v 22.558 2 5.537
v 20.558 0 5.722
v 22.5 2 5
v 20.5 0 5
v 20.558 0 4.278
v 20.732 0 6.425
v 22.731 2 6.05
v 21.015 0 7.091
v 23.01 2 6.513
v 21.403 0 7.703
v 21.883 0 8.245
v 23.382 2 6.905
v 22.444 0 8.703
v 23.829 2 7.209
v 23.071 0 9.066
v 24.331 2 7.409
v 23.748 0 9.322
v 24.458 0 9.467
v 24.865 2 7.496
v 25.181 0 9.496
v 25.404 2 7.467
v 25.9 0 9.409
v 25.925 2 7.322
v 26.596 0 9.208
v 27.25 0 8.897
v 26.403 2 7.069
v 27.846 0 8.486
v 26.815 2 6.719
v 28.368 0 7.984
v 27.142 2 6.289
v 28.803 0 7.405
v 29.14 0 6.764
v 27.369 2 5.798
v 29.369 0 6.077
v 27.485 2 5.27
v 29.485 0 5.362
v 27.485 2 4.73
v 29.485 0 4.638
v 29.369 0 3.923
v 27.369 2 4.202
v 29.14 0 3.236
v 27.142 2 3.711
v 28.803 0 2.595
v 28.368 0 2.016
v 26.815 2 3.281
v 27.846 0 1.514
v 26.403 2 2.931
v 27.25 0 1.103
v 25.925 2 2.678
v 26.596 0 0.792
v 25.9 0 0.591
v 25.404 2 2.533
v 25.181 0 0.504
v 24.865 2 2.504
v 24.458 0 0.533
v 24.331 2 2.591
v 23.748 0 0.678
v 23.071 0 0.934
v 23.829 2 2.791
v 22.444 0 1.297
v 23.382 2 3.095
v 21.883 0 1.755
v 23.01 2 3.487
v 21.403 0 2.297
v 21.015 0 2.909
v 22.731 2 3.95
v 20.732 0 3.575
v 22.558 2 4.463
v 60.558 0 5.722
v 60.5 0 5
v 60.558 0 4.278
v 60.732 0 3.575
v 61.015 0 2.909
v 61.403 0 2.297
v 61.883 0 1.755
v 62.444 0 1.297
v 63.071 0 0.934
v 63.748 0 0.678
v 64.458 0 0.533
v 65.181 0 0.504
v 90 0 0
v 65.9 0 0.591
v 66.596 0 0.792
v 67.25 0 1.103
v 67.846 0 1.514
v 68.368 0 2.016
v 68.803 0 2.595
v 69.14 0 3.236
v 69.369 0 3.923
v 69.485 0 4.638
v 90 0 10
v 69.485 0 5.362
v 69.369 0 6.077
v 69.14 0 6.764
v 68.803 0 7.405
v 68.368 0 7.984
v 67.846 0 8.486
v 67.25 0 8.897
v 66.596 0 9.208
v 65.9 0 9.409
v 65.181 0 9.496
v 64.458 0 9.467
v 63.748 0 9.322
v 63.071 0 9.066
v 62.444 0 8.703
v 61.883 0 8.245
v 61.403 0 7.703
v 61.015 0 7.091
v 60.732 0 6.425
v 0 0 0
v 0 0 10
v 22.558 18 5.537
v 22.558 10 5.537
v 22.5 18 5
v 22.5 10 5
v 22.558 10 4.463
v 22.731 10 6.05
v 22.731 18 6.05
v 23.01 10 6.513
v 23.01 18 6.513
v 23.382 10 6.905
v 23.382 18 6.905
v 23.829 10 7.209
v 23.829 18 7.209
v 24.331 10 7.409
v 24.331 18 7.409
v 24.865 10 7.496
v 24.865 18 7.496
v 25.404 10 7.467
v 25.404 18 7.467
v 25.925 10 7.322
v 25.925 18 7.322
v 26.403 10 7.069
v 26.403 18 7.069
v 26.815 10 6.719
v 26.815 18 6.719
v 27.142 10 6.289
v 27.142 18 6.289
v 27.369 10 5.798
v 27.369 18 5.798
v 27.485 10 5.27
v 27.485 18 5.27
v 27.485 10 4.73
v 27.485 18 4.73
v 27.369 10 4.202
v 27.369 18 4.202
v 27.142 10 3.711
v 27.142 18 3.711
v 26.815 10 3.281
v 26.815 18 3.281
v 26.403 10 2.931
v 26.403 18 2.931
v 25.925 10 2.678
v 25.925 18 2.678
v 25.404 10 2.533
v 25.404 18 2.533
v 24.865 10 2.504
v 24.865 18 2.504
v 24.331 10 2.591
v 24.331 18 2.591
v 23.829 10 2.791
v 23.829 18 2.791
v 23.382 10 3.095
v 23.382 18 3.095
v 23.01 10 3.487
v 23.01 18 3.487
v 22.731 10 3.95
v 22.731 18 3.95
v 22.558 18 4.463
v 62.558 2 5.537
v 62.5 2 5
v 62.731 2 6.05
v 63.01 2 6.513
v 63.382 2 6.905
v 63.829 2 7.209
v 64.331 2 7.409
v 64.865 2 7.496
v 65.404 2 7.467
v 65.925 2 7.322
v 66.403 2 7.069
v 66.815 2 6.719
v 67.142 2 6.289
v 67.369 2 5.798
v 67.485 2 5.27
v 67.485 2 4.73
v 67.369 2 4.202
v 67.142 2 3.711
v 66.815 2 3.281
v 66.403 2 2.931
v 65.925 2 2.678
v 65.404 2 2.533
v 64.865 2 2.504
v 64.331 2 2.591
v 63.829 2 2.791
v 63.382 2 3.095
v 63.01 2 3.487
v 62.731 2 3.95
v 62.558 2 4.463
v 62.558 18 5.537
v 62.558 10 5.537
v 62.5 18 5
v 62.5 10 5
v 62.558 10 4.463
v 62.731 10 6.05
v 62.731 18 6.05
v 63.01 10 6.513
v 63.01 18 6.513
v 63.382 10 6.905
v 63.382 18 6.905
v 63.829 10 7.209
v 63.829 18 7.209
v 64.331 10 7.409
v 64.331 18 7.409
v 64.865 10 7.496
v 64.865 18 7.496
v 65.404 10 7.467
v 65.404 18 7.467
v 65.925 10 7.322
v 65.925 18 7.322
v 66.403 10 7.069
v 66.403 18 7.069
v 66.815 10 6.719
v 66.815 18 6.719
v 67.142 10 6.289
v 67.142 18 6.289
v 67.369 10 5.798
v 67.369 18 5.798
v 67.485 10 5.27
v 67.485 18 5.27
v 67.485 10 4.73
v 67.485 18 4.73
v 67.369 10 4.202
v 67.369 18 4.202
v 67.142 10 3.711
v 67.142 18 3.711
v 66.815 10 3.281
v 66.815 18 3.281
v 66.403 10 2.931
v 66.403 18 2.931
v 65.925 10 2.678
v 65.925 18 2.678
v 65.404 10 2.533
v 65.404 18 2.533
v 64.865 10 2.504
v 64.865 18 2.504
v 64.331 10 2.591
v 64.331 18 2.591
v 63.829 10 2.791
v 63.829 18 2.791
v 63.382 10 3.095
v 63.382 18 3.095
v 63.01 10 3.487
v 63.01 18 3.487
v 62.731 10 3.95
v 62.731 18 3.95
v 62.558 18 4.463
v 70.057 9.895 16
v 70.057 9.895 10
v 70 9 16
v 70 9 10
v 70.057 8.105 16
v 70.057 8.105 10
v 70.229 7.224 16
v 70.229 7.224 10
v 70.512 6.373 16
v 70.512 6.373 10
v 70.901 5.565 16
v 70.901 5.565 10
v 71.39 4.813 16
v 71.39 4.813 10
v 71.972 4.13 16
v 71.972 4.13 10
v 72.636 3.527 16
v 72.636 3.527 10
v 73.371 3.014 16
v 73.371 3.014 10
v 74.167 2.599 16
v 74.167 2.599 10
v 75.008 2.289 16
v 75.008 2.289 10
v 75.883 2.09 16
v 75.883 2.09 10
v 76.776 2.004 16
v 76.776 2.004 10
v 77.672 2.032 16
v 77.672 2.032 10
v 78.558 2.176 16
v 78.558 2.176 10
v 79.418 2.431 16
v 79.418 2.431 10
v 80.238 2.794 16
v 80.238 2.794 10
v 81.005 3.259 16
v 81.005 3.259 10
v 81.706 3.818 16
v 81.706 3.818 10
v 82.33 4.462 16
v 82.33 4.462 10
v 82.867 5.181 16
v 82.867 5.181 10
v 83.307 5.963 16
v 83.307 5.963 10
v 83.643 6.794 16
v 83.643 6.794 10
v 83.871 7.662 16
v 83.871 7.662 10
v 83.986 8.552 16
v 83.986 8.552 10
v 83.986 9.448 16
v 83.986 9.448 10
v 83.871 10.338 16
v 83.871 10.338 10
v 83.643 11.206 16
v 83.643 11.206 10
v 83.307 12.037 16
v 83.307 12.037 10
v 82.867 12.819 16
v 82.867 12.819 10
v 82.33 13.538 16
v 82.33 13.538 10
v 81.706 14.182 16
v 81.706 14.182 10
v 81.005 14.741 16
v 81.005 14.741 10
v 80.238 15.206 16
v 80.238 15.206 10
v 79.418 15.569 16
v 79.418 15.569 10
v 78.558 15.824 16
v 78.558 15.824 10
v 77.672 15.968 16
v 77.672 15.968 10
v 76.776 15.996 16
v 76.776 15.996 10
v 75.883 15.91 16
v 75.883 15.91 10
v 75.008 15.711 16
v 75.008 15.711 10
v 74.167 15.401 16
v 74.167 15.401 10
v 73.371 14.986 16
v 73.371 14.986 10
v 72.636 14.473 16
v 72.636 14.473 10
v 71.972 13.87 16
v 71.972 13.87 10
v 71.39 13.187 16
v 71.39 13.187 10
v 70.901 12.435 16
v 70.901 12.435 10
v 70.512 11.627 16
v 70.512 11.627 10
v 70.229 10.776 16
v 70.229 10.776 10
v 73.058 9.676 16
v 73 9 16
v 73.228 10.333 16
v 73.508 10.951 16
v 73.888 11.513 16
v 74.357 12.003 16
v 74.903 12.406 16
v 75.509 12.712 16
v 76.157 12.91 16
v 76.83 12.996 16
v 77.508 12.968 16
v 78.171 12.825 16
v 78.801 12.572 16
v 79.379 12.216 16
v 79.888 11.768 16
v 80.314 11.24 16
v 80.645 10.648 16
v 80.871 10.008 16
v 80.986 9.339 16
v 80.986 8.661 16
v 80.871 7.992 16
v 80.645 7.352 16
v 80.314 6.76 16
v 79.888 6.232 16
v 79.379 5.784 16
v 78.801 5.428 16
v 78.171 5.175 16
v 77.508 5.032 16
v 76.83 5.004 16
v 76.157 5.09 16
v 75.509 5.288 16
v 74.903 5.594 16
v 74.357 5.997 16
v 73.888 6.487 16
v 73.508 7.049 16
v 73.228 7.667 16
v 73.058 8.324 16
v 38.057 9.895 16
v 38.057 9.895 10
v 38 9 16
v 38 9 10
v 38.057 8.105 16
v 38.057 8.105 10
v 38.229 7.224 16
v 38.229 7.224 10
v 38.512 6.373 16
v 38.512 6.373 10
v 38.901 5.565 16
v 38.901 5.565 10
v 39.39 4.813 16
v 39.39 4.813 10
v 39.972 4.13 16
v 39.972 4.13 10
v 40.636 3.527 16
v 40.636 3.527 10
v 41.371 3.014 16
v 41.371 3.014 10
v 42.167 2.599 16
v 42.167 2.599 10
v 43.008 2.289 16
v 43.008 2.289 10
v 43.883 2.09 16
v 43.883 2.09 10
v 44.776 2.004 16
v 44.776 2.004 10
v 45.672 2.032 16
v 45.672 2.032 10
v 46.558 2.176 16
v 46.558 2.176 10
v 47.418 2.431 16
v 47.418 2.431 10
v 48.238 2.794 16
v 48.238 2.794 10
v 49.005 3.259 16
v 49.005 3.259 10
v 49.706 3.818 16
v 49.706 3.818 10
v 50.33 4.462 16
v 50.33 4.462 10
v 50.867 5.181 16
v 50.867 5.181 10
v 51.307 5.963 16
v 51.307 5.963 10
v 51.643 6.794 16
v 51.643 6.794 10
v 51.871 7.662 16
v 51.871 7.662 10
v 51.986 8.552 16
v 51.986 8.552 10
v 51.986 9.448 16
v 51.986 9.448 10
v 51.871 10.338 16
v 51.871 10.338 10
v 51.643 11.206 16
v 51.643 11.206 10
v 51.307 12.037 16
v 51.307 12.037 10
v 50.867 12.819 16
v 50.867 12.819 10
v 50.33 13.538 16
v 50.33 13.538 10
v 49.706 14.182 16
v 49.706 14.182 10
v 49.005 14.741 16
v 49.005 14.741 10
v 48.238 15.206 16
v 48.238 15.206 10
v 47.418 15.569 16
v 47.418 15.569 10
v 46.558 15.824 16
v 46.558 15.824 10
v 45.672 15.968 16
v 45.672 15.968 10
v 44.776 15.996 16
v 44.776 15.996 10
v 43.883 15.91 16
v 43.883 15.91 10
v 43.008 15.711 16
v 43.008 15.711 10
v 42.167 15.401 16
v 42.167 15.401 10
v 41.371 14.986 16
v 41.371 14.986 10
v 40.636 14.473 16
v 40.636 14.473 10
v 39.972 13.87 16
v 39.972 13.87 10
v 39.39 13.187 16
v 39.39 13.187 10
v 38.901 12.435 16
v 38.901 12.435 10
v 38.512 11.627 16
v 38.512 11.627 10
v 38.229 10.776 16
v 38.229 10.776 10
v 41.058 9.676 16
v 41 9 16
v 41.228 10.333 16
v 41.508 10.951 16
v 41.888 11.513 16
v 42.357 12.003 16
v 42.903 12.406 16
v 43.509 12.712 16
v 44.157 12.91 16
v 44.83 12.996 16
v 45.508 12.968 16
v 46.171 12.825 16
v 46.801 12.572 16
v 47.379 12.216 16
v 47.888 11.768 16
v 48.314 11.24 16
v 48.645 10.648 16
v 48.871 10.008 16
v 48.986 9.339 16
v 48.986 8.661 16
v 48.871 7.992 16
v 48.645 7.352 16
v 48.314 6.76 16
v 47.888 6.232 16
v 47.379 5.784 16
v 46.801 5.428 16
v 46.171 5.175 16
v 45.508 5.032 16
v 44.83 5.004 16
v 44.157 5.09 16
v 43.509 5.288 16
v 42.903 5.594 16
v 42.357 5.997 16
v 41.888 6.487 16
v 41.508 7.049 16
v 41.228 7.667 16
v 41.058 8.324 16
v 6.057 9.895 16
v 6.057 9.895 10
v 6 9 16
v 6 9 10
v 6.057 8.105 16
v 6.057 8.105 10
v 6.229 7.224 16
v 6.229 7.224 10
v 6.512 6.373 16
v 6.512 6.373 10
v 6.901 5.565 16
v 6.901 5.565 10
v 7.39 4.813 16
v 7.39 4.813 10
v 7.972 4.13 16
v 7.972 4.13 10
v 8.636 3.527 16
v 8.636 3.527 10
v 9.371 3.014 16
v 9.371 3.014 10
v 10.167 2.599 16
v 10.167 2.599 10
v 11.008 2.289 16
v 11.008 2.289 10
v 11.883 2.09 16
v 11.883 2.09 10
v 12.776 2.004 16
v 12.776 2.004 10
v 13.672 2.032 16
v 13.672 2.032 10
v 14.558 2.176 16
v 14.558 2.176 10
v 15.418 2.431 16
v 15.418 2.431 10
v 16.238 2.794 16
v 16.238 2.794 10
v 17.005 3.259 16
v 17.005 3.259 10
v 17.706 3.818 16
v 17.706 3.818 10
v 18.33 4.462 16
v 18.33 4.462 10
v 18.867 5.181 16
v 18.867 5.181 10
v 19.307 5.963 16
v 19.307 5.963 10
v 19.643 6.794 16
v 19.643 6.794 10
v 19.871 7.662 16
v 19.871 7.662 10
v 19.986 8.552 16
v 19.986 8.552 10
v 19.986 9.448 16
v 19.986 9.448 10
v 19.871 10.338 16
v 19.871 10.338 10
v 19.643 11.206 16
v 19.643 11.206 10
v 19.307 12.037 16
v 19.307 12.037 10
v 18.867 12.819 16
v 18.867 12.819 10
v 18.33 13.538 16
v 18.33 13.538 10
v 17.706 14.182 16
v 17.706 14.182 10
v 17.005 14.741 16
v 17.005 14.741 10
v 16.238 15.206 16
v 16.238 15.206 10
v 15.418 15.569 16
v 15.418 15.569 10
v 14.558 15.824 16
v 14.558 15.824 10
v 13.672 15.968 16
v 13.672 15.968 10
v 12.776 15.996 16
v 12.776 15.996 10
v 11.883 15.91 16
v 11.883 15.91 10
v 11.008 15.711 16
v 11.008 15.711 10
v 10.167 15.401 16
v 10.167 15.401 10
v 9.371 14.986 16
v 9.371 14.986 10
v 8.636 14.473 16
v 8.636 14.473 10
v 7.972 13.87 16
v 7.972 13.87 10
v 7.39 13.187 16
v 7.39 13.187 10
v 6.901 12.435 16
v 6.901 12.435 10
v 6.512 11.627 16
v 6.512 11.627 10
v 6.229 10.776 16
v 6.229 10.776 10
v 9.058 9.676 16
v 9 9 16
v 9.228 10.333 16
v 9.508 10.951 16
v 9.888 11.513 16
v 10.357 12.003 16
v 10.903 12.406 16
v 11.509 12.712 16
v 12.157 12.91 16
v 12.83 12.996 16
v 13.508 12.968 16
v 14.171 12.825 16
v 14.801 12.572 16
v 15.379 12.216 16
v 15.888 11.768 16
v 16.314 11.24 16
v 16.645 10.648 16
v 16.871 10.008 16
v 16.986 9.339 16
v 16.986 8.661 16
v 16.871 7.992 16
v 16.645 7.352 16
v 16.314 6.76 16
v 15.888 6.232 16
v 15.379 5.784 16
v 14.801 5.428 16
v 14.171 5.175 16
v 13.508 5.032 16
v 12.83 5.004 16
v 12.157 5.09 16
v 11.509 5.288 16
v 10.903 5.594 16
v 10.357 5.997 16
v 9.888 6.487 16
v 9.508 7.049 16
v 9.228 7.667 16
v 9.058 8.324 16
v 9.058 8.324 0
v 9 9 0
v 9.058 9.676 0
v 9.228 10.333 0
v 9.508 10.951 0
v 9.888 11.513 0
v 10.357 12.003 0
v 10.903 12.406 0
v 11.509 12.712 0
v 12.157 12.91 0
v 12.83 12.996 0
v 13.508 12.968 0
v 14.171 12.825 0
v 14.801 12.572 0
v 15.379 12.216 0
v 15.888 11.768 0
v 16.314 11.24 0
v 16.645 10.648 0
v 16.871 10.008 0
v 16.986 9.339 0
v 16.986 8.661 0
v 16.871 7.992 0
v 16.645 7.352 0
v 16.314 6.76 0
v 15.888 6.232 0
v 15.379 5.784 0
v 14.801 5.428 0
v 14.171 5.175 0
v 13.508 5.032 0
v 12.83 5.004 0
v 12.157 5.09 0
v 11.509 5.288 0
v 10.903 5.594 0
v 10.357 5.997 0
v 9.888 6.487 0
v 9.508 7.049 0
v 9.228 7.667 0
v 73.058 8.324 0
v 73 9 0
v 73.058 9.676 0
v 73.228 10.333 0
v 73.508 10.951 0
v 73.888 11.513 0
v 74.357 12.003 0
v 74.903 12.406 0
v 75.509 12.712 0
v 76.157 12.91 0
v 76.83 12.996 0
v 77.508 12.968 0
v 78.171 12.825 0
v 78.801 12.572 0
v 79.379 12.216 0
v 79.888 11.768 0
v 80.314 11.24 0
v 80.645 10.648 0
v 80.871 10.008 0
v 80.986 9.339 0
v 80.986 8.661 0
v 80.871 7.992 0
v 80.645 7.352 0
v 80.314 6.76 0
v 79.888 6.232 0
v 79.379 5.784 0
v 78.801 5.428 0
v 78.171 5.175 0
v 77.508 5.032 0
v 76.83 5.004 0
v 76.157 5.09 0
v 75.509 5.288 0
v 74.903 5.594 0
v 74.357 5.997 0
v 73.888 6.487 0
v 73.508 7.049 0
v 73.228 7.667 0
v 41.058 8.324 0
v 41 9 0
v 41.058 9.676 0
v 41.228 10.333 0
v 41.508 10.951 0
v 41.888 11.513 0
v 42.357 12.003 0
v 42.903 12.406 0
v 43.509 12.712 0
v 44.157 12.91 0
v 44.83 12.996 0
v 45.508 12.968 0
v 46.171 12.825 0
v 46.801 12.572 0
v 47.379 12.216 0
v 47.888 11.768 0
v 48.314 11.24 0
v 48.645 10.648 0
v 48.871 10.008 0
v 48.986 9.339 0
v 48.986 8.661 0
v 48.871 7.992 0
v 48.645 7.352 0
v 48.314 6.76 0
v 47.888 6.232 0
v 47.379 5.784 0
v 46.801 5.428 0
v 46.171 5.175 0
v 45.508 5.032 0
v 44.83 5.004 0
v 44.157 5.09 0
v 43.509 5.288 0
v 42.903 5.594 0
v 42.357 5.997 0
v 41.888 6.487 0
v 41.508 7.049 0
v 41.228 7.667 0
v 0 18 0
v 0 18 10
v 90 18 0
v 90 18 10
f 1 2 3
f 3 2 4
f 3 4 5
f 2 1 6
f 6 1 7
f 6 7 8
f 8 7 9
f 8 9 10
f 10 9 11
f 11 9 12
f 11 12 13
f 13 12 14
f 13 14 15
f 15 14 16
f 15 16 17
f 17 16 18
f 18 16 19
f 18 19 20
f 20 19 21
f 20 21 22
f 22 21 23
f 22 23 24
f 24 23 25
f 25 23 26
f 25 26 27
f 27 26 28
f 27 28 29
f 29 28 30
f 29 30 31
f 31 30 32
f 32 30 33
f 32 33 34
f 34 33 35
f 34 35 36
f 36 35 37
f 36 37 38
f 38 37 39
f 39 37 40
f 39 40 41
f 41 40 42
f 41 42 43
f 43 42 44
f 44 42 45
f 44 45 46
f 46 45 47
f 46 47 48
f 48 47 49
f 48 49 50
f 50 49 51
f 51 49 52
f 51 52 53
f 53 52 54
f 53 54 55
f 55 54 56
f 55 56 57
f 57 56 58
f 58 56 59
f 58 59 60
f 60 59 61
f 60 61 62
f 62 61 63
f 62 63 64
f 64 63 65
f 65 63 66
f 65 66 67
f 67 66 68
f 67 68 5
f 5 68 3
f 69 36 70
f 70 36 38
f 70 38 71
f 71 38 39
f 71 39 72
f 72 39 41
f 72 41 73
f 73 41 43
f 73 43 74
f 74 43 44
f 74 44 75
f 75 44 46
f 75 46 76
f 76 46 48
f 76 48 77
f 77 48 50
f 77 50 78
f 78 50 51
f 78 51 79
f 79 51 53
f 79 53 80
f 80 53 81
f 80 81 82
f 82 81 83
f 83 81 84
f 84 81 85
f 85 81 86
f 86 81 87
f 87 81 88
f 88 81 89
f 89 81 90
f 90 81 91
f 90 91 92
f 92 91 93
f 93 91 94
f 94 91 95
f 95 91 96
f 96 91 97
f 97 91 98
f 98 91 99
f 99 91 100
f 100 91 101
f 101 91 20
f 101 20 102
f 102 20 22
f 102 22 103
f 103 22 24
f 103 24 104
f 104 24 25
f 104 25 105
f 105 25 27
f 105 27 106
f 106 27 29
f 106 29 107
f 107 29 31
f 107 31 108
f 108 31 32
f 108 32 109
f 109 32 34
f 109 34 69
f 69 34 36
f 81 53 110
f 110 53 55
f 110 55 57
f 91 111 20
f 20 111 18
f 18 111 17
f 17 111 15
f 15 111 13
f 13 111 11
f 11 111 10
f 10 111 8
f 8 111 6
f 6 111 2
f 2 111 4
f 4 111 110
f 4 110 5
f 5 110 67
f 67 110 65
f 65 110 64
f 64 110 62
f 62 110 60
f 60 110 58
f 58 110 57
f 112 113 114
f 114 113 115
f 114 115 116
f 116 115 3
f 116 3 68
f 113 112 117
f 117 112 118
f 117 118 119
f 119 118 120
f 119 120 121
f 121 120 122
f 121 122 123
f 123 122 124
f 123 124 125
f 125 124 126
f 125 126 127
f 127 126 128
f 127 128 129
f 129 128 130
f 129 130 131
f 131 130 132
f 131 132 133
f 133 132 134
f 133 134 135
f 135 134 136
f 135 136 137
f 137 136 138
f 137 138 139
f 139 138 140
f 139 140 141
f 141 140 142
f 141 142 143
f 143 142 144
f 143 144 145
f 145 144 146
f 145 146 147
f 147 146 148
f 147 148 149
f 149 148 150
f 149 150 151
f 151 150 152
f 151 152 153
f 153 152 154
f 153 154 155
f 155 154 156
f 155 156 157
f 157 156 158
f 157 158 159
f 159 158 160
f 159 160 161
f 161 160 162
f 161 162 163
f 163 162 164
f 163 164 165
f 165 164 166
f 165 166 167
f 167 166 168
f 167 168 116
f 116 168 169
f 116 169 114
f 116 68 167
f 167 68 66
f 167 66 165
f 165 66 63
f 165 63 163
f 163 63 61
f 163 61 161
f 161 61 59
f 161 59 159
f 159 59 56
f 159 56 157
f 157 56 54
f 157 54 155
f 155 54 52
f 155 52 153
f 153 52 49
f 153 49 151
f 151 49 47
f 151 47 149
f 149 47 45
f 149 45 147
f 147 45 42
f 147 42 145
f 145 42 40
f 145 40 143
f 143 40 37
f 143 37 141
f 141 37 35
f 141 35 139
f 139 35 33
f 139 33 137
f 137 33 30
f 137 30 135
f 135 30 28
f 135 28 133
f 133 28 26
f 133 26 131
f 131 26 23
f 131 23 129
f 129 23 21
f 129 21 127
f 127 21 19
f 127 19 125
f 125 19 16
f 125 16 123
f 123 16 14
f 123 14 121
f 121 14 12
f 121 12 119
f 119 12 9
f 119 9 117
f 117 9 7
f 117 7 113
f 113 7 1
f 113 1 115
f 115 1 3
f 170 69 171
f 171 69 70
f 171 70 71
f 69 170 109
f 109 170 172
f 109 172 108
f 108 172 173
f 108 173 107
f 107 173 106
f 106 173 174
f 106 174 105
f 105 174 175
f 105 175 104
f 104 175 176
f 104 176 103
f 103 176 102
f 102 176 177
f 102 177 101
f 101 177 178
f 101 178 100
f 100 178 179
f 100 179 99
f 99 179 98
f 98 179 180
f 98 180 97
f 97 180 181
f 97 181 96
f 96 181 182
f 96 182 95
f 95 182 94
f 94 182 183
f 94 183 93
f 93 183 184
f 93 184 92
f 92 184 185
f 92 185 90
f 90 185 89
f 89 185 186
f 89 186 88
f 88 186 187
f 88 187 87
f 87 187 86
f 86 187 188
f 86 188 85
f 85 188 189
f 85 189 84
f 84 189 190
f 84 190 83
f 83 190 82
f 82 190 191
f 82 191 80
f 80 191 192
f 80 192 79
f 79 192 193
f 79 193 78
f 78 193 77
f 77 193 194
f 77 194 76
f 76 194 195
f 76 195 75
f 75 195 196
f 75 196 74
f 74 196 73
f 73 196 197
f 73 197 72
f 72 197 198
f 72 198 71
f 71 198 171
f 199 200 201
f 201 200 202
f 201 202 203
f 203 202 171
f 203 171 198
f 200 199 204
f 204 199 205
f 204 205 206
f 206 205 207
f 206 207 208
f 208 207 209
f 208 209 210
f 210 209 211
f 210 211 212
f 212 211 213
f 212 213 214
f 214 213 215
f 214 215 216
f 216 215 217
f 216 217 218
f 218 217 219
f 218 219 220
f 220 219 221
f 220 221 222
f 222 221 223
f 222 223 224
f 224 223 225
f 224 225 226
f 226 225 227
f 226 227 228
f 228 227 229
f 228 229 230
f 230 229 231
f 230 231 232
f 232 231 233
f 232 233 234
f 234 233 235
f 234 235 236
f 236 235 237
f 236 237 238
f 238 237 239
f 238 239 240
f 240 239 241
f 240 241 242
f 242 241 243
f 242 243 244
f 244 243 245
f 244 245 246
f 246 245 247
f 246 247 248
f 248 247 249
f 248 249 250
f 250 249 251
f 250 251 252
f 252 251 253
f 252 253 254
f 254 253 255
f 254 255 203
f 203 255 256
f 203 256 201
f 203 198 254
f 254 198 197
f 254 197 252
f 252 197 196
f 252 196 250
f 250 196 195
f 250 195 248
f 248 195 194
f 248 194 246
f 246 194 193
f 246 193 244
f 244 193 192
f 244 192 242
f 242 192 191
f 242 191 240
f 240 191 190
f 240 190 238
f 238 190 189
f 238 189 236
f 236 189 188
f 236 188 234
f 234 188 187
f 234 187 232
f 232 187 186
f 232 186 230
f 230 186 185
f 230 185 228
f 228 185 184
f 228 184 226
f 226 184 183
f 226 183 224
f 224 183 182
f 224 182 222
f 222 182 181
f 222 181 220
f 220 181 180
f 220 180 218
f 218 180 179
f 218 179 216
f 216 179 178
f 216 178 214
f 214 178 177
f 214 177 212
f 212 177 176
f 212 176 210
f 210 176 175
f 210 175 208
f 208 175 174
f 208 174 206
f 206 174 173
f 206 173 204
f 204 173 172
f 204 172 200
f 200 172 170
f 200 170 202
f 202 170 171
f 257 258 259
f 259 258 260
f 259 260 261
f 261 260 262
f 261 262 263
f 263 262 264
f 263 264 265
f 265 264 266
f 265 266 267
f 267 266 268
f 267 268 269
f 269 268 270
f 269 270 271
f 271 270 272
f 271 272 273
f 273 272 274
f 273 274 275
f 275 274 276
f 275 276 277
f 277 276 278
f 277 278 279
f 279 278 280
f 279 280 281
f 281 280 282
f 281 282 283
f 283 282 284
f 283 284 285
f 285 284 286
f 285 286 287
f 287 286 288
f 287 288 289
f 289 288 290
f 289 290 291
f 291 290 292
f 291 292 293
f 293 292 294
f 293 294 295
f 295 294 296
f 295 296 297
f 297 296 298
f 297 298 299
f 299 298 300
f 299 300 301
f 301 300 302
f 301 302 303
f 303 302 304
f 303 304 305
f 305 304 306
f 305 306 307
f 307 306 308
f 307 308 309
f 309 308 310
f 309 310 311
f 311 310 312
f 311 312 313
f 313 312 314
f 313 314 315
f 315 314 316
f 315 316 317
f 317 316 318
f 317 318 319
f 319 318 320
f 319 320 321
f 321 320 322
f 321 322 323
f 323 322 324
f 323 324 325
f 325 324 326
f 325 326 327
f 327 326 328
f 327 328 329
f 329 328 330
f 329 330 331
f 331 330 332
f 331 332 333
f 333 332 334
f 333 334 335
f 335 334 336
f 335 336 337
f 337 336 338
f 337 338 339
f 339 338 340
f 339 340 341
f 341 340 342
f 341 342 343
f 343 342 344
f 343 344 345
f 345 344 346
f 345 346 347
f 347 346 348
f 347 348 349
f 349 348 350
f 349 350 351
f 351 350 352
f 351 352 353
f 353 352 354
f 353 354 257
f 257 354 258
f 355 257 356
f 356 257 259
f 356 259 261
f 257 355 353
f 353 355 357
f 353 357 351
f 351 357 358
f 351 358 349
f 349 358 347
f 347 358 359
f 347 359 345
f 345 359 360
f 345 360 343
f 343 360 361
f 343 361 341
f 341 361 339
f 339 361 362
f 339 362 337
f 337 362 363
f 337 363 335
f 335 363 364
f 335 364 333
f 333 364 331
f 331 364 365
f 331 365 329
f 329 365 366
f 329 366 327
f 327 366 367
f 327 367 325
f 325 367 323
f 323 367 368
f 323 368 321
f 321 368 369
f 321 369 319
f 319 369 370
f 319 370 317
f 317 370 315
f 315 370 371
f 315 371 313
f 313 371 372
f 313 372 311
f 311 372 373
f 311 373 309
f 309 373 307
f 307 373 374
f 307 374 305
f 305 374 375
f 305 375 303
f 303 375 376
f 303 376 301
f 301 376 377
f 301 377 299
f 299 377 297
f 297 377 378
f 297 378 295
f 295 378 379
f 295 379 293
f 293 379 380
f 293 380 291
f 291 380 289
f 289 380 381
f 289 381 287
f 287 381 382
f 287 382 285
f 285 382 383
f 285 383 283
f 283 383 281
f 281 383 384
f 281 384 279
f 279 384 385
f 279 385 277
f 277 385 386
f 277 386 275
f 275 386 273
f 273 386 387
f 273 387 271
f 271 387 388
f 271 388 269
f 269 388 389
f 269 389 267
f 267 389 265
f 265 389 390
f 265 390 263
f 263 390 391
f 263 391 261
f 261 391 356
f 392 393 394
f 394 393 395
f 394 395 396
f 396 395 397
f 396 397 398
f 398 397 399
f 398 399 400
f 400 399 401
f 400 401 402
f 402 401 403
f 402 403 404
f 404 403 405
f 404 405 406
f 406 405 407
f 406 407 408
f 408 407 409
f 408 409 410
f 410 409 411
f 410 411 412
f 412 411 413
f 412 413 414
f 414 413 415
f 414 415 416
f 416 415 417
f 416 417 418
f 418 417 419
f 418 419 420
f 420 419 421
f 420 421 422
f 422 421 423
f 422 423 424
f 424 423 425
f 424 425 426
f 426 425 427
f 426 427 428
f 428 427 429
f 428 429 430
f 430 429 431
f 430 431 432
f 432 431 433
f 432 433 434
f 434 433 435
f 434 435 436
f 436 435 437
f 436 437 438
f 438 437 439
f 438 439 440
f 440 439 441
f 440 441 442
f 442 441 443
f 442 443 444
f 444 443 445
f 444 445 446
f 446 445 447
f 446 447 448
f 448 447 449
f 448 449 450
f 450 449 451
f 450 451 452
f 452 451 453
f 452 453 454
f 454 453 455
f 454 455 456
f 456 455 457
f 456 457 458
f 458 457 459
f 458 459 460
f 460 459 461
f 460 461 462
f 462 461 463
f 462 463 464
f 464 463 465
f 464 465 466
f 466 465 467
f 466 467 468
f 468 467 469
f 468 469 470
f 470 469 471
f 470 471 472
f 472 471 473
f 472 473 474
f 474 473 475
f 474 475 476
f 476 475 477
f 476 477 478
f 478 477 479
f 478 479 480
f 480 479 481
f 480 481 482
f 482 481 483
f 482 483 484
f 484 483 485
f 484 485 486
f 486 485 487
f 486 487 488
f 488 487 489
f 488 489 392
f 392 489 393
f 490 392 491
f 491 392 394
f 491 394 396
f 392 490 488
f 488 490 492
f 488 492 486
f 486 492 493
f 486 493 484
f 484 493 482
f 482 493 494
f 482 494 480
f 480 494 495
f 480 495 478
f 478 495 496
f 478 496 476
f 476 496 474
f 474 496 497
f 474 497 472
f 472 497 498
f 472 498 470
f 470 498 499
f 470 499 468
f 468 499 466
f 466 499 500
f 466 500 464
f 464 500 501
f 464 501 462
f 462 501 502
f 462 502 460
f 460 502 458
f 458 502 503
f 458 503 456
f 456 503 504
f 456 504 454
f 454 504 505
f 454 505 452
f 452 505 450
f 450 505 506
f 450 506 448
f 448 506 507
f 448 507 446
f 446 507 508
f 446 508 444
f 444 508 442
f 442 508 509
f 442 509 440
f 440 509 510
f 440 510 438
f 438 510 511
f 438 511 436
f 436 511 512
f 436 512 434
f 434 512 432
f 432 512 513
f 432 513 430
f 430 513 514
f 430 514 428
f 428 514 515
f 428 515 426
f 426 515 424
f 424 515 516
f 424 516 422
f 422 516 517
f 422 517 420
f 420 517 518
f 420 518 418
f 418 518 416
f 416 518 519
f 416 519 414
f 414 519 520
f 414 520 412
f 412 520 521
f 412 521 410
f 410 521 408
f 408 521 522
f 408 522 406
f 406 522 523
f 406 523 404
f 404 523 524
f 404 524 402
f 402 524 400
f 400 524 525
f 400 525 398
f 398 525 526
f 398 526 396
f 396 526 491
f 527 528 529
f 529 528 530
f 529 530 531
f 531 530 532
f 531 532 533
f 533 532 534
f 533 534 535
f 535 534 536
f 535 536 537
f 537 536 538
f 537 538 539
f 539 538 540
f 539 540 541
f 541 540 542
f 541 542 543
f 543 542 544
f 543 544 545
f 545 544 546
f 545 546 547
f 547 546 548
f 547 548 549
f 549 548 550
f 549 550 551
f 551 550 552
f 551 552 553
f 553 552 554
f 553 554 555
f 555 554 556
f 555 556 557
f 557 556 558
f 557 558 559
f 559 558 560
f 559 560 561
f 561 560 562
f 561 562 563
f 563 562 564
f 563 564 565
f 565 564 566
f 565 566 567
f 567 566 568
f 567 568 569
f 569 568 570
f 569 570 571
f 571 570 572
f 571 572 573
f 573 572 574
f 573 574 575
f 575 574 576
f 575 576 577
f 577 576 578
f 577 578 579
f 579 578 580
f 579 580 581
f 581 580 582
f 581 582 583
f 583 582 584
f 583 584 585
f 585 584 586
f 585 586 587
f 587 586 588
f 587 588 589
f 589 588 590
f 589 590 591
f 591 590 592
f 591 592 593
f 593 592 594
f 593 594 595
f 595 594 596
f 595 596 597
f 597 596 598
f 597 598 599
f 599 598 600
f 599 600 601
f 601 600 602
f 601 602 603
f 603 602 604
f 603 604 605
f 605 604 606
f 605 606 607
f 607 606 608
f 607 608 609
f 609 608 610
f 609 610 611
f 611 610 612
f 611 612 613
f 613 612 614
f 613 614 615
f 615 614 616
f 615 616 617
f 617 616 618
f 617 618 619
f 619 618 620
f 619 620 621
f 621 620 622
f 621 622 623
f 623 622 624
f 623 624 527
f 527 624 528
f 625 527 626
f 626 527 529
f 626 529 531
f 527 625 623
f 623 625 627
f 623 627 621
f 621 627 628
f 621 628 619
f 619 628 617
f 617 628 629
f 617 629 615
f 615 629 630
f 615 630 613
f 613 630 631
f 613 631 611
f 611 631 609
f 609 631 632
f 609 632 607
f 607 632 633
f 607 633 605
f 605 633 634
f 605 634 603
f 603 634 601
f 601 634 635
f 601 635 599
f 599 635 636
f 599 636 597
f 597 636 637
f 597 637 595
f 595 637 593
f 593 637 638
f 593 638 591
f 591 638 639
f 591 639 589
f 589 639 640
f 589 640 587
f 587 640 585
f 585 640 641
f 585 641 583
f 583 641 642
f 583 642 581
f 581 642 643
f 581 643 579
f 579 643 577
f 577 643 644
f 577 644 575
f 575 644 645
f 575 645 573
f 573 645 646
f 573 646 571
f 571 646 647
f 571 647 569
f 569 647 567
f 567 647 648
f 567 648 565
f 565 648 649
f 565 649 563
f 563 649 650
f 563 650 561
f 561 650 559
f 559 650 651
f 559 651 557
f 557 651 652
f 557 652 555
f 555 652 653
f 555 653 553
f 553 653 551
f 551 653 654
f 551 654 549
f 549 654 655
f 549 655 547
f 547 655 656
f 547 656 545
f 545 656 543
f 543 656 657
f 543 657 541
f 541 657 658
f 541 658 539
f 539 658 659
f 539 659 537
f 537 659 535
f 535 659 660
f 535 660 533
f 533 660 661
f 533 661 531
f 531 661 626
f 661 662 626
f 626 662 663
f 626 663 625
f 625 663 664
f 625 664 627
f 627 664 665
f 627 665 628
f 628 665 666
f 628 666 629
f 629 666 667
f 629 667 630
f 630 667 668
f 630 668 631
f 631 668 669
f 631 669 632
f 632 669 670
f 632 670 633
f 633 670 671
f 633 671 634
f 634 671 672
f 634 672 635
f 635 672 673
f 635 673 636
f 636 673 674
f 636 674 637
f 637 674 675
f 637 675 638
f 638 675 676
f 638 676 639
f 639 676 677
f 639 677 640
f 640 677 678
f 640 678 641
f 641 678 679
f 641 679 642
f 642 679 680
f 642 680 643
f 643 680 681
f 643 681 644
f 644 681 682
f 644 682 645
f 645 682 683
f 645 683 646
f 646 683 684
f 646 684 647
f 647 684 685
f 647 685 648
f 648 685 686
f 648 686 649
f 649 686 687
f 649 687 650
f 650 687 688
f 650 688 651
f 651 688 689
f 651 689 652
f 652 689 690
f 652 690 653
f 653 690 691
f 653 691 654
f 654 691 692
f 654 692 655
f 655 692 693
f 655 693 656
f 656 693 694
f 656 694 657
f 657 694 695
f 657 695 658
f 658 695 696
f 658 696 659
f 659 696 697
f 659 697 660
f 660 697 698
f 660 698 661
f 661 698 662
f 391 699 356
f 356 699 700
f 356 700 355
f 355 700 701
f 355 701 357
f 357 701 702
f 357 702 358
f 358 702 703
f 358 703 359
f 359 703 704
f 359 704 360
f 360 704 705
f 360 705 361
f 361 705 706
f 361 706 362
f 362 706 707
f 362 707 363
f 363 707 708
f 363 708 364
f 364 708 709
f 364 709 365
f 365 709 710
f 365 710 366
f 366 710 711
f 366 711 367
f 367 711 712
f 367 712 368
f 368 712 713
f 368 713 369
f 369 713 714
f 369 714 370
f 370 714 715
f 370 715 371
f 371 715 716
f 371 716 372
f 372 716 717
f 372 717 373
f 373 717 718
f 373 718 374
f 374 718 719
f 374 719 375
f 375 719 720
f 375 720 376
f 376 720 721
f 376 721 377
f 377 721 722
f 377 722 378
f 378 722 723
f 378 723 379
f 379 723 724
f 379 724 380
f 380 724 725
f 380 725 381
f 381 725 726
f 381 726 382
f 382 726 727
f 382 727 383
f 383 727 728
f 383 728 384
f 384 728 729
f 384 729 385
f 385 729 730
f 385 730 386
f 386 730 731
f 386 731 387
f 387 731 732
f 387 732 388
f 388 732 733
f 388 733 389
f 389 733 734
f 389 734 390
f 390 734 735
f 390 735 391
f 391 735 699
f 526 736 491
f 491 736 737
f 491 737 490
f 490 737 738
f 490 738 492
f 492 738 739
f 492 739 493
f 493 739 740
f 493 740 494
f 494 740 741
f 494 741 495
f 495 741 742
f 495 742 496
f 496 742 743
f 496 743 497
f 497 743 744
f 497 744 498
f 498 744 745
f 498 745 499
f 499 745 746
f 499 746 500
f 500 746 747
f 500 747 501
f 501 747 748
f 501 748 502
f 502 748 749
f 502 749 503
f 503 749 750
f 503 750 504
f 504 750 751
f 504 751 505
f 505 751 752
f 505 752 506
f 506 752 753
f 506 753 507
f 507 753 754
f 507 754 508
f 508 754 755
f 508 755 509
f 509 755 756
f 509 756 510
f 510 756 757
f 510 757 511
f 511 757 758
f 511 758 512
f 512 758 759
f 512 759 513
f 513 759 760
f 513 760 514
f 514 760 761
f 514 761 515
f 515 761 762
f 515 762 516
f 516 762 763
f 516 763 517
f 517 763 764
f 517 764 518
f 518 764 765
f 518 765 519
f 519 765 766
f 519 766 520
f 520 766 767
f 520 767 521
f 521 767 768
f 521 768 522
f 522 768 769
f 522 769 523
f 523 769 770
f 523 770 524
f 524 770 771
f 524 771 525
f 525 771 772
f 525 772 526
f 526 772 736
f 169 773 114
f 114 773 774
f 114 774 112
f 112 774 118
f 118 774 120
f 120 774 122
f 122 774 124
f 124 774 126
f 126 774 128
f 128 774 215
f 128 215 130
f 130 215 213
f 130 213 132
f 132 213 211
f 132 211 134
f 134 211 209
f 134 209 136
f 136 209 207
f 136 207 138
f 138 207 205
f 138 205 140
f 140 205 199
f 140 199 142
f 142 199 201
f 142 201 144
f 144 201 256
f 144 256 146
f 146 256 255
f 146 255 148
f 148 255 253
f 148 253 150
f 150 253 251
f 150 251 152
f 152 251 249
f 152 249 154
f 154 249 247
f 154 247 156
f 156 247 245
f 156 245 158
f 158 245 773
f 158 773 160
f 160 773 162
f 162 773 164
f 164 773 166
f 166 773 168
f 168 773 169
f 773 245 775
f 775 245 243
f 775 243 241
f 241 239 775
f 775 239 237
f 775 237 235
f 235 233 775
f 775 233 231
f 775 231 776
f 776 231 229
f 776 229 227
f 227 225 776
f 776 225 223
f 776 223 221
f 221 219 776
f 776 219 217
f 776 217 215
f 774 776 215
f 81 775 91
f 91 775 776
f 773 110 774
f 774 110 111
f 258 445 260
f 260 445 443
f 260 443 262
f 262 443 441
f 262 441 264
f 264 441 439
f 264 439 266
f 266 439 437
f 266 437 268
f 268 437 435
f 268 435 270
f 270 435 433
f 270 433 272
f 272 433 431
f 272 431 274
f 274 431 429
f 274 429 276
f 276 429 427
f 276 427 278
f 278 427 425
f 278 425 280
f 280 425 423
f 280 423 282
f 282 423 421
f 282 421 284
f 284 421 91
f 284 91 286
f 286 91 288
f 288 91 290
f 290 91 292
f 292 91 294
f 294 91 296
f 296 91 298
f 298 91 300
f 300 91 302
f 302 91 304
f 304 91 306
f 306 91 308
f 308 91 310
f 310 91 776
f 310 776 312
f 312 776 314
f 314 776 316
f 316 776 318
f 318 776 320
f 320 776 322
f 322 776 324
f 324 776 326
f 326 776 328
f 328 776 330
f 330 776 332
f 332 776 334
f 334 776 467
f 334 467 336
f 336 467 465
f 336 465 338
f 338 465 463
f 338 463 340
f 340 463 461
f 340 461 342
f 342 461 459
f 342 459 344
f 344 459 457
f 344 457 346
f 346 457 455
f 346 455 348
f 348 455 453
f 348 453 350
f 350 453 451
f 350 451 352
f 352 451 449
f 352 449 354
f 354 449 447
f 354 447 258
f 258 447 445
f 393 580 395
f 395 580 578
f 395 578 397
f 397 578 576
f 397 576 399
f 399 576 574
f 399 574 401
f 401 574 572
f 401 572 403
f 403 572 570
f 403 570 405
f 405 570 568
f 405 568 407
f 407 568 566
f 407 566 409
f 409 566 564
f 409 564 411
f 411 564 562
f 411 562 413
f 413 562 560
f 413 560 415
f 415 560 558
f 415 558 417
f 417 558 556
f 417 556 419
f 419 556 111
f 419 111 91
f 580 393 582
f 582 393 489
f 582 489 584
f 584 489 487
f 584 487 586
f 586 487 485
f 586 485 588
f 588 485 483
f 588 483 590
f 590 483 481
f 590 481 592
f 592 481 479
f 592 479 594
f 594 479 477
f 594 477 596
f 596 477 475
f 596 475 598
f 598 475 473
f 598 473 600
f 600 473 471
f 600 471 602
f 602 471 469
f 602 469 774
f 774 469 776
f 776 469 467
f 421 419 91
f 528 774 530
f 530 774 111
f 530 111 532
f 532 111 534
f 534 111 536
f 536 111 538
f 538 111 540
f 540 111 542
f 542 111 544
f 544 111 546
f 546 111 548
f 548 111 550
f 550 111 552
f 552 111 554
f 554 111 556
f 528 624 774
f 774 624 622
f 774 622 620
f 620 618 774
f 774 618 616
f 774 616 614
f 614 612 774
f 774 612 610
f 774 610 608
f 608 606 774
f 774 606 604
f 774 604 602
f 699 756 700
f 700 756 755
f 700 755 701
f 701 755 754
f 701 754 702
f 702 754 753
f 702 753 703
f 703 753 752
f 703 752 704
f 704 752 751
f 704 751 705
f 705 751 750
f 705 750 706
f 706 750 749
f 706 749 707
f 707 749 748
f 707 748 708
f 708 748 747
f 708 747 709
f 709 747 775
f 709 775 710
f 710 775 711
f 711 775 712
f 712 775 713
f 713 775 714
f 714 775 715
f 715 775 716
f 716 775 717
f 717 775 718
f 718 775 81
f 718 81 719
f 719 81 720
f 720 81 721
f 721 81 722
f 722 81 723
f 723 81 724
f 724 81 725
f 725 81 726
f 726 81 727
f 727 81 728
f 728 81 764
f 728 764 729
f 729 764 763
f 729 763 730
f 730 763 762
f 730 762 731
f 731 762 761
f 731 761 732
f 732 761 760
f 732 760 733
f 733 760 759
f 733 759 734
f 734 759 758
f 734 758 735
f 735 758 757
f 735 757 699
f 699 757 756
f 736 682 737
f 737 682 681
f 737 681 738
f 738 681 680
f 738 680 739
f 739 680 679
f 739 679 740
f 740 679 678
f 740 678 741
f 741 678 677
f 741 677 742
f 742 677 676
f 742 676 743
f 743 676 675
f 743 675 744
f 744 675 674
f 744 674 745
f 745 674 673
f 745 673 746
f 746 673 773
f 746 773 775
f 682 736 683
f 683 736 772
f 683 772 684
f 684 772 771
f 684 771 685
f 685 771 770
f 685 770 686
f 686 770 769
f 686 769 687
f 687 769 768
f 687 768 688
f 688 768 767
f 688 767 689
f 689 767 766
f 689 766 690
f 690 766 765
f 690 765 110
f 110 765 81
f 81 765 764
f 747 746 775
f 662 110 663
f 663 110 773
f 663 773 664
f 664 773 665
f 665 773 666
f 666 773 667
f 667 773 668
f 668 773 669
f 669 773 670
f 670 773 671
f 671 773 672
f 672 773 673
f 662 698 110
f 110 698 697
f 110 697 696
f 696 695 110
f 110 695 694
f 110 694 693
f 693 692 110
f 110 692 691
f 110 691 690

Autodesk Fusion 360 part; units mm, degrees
sketch "Sketch1" plane through (0, 0, 0) normal (0, 0, 1) x (1, 0, 0)
  line L0 (0, 0) -> (90, 0)
  line L1 (90, 0) -> (90, 18)
  line L2 (90, 18) -> (0, 18)
  line L3 (0, 18) -> (0, 0)
  circle A0 centre (13, 9) radius 4
  circle A1 centre (45, 9) radius 4
  circle A2 centre (77, 9) radius 4
  circle A3 centre (13, 9) radius 7
  circle A4 centre (45, 9) radius 7
  circle A5 centre (77, 9) radius 7
  dimension "d1" = 9
  dimension "d2" = 9
  dimension "d3" = 9
  dimension "d4" = 45
  dimension "d5" = 32
  dimension "d6" = 32
extrude "Extrude1" add sketch "Sketch1" along normal blind 10 contours L0 L1 L2 L3 | A3 | A4 | A5
extrude "Extrude2" add sketch "Sketch1" along normal blind 16 contours A3 | A4 | A5
sketch "Sketch2" plane through (0, 0, 0) normal (0, -1, 0) x (1, 0, 0)
  line L0 (0, 0) -> (90, 0)
  line L1 (90, 0) -> (90, 10)
  line L2 (90, 10) -> (0, 10)
  line L3 (0, 10) -> (0, 0)
  circle A0 centre (25, 5) radius 2.5
  circle A1 centre (65, 5) radius 2.5
  dimension "d11" = 25
  dimension "d12" = 40
extrude "Extrude3" cut sketch "Sketch2" against normal blind 18 contours A0 | A1
chamfer "Chamfer1" distance 2 angle 45 2 edges at (62.6692, 0, 5.904) (22.6692, 0, 5.904)
